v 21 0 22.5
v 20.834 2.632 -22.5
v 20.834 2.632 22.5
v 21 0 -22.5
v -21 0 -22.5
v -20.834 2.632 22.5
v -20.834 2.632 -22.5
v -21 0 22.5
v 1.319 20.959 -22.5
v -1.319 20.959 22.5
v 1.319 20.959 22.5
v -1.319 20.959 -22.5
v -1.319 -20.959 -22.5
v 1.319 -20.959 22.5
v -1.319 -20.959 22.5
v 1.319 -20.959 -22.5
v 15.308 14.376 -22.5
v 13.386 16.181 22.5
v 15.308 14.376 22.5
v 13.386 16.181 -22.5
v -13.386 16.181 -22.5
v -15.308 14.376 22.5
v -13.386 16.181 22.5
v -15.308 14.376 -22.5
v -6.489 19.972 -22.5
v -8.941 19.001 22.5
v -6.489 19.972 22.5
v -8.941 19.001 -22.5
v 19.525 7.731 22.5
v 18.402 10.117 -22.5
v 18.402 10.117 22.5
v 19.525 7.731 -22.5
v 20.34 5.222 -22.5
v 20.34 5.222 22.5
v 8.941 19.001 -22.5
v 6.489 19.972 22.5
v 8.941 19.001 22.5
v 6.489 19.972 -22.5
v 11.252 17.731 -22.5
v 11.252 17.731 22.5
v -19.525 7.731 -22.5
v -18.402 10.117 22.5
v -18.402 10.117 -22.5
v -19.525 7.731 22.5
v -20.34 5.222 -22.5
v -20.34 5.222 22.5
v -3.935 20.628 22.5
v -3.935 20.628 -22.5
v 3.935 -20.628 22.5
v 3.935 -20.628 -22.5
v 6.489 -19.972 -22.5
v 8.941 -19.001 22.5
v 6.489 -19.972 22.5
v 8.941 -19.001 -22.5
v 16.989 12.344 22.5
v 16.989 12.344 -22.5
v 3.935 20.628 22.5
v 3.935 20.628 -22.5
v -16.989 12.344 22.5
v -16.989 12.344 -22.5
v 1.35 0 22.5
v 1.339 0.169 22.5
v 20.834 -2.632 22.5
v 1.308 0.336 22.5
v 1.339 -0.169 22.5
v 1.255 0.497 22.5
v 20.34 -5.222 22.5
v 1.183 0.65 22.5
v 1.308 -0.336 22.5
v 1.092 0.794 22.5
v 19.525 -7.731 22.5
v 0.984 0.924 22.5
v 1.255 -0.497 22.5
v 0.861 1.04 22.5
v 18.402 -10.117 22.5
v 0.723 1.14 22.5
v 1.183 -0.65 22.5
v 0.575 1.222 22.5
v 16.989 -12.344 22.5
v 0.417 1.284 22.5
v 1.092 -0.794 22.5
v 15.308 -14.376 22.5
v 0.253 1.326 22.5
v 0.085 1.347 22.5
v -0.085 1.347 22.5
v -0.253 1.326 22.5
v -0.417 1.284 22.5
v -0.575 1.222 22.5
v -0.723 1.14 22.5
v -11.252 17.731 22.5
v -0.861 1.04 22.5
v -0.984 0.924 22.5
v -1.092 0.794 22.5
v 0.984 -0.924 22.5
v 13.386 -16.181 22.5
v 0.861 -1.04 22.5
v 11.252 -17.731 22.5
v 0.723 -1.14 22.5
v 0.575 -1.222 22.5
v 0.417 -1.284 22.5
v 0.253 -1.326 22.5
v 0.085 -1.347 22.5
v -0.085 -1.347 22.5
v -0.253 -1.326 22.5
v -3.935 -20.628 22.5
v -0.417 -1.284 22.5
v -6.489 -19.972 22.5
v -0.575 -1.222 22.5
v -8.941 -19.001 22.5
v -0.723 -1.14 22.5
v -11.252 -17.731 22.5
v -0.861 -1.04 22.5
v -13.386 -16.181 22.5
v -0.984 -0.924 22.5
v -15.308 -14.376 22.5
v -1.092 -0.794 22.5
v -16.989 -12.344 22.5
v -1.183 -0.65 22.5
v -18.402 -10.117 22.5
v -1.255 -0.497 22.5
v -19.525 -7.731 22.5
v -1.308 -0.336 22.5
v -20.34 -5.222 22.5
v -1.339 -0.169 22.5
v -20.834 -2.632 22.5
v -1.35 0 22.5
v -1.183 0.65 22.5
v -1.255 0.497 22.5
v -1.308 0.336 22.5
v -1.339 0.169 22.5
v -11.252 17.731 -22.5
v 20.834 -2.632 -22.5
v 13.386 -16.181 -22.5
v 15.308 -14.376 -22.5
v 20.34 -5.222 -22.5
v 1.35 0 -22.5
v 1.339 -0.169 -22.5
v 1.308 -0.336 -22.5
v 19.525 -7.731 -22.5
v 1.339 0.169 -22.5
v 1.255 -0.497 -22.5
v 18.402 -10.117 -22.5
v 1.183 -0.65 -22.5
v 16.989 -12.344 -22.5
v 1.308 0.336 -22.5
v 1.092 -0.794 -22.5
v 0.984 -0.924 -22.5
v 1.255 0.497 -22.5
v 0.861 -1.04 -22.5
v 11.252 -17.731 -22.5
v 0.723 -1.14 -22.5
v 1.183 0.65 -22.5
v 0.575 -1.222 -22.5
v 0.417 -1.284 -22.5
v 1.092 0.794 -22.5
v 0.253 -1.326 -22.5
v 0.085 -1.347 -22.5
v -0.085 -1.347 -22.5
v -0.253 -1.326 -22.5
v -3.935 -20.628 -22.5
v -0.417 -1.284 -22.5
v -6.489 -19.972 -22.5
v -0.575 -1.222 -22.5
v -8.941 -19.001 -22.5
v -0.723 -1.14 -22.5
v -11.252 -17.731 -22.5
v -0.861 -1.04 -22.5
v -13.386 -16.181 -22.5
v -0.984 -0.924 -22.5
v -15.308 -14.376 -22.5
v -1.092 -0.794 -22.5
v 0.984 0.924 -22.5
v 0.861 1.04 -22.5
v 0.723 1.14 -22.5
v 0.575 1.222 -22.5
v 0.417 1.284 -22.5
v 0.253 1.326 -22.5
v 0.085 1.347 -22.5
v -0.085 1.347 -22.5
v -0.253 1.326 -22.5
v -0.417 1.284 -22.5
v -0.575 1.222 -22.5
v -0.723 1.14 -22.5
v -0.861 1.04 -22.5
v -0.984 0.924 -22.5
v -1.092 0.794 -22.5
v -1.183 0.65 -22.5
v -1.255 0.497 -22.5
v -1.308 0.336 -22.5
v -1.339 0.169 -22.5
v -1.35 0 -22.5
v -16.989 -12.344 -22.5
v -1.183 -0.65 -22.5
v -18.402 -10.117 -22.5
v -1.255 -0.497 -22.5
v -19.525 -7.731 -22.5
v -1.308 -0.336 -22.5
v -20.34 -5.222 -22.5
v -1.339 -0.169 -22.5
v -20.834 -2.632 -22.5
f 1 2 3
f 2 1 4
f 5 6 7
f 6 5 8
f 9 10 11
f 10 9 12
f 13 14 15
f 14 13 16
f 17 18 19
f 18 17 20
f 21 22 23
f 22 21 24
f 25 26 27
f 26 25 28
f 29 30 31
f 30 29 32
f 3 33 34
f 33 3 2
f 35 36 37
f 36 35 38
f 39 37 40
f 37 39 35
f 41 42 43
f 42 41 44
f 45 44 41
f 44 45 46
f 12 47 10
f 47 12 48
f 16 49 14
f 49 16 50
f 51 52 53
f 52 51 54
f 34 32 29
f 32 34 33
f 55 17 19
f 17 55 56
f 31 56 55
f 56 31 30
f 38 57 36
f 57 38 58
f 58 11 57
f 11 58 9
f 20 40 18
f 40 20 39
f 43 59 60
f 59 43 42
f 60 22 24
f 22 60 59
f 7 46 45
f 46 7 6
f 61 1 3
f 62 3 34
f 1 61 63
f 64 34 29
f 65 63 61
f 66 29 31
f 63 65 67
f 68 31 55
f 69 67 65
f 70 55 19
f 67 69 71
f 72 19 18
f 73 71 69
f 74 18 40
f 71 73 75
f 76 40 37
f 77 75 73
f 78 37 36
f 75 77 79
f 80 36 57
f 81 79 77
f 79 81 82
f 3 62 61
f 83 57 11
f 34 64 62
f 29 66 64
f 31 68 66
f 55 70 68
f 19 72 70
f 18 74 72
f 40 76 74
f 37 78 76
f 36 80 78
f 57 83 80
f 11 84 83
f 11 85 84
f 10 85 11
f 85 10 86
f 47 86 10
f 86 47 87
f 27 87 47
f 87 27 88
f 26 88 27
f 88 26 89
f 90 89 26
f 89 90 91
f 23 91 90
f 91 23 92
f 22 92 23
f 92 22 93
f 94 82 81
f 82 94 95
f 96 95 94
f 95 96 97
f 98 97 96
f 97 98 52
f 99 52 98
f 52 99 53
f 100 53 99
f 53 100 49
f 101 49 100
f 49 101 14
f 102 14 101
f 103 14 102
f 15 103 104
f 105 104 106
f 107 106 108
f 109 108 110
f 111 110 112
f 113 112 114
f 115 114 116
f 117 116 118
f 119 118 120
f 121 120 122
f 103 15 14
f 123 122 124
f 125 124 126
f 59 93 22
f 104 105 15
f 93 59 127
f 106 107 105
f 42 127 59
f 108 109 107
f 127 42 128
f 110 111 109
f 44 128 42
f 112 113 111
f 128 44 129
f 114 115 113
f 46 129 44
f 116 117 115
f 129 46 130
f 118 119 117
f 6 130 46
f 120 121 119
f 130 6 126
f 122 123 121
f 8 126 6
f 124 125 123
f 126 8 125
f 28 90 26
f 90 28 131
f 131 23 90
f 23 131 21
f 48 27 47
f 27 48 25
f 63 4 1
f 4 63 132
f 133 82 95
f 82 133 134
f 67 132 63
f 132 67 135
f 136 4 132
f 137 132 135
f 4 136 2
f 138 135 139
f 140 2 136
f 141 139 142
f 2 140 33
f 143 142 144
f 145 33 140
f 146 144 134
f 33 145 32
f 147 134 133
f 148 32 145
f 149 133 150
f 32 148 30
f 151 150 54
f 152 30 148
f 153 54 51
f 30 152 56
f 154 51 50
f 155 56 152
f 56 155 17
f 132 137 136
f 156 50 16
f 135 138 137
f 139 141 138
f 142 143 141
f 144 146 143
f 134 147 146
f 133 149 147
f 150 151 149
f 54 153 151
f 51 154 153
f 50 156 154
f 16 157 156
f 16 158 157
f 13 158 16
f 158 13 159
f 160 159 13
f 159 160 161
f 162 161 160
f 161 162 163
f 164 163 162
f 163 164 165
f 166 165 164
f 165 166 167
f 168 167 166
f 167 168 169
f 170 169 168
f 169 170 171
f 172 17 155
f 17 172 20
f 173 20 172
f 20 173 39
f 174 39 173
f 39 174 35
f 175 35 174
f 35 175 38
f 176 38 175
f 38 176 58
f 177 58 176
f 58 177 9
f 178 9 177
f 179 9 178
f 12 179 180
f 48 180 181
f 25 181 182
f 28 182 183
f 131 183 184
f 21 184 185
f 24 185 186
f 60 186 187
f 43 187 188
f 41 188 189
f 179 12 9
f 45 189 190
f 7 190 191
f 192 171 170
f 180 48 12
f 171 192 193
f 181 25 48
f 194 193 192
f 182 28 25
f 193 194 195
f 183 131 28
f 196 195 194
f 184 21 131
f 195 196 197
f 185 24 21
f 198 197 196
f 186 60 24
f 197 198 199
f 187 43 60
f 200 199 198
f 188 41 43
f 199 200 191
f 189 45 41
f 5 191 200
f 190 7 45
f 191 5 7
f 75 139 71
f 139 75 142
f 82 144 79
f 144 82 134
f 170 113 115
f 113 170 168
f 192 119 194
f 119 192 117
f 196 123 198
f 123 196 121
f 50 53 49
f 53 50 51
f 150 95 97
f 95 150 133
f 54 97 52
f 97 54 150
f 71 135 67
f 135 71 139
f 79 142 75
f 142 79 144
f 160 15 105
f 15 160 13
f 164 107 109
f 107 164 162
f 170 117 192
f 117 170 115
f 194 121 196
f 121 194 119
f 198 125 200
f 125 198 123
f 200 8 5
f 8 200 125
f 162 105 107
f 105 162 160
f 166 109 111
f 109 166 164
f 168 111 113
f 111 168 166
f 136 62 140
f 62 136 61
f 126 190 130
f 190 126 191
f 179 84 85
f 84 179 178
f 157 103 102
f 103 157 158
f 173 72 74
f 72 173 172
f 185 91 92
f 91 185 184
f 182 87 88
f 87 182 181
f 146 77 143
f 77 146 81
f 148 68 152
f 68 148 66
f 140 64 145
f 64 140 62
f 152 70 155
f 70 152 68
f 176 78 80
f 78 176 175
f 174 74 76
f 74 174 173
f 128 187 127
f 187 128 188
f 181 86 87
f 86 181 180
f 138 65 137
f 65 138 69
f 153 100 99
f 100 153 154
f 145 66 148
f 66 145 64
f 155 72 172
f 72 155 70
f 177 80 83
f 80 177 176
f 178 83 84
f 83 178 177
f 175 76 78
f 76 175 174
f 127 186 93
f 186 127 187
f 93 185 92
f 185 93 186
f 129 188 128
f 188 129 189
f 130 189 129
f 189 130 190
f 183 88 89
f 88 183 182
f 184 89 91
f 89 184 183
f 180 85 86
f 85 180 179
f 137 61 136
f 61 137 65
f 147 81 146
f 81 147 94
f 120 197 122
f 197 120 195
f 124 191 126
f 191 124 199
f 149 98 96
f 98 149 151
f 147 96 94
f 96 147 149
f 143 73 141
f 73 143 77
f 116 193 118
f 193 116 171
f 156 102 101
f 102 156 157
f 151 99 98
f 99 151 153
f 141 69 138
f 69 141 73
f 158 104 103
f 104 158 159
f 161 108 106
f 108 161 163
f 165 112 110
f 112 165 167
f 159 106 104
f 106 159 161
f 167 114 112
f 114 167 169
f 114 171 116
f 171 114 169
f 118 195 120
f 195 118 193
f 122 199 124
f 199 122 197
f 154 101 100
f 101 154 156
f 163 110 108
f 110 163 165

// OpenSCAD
$fn = 50;


difference() {
	union() {
		translate(v = [0, 0, -22.5000000000]) {
			cylinder(h = 45, r = 21.0000000000);
		}
	}
	union() {
		translate(v = [0, 0, -100.0000000000]) {
			cylinder(h = 200, r = 1.3500000000);
		}
	}
}
